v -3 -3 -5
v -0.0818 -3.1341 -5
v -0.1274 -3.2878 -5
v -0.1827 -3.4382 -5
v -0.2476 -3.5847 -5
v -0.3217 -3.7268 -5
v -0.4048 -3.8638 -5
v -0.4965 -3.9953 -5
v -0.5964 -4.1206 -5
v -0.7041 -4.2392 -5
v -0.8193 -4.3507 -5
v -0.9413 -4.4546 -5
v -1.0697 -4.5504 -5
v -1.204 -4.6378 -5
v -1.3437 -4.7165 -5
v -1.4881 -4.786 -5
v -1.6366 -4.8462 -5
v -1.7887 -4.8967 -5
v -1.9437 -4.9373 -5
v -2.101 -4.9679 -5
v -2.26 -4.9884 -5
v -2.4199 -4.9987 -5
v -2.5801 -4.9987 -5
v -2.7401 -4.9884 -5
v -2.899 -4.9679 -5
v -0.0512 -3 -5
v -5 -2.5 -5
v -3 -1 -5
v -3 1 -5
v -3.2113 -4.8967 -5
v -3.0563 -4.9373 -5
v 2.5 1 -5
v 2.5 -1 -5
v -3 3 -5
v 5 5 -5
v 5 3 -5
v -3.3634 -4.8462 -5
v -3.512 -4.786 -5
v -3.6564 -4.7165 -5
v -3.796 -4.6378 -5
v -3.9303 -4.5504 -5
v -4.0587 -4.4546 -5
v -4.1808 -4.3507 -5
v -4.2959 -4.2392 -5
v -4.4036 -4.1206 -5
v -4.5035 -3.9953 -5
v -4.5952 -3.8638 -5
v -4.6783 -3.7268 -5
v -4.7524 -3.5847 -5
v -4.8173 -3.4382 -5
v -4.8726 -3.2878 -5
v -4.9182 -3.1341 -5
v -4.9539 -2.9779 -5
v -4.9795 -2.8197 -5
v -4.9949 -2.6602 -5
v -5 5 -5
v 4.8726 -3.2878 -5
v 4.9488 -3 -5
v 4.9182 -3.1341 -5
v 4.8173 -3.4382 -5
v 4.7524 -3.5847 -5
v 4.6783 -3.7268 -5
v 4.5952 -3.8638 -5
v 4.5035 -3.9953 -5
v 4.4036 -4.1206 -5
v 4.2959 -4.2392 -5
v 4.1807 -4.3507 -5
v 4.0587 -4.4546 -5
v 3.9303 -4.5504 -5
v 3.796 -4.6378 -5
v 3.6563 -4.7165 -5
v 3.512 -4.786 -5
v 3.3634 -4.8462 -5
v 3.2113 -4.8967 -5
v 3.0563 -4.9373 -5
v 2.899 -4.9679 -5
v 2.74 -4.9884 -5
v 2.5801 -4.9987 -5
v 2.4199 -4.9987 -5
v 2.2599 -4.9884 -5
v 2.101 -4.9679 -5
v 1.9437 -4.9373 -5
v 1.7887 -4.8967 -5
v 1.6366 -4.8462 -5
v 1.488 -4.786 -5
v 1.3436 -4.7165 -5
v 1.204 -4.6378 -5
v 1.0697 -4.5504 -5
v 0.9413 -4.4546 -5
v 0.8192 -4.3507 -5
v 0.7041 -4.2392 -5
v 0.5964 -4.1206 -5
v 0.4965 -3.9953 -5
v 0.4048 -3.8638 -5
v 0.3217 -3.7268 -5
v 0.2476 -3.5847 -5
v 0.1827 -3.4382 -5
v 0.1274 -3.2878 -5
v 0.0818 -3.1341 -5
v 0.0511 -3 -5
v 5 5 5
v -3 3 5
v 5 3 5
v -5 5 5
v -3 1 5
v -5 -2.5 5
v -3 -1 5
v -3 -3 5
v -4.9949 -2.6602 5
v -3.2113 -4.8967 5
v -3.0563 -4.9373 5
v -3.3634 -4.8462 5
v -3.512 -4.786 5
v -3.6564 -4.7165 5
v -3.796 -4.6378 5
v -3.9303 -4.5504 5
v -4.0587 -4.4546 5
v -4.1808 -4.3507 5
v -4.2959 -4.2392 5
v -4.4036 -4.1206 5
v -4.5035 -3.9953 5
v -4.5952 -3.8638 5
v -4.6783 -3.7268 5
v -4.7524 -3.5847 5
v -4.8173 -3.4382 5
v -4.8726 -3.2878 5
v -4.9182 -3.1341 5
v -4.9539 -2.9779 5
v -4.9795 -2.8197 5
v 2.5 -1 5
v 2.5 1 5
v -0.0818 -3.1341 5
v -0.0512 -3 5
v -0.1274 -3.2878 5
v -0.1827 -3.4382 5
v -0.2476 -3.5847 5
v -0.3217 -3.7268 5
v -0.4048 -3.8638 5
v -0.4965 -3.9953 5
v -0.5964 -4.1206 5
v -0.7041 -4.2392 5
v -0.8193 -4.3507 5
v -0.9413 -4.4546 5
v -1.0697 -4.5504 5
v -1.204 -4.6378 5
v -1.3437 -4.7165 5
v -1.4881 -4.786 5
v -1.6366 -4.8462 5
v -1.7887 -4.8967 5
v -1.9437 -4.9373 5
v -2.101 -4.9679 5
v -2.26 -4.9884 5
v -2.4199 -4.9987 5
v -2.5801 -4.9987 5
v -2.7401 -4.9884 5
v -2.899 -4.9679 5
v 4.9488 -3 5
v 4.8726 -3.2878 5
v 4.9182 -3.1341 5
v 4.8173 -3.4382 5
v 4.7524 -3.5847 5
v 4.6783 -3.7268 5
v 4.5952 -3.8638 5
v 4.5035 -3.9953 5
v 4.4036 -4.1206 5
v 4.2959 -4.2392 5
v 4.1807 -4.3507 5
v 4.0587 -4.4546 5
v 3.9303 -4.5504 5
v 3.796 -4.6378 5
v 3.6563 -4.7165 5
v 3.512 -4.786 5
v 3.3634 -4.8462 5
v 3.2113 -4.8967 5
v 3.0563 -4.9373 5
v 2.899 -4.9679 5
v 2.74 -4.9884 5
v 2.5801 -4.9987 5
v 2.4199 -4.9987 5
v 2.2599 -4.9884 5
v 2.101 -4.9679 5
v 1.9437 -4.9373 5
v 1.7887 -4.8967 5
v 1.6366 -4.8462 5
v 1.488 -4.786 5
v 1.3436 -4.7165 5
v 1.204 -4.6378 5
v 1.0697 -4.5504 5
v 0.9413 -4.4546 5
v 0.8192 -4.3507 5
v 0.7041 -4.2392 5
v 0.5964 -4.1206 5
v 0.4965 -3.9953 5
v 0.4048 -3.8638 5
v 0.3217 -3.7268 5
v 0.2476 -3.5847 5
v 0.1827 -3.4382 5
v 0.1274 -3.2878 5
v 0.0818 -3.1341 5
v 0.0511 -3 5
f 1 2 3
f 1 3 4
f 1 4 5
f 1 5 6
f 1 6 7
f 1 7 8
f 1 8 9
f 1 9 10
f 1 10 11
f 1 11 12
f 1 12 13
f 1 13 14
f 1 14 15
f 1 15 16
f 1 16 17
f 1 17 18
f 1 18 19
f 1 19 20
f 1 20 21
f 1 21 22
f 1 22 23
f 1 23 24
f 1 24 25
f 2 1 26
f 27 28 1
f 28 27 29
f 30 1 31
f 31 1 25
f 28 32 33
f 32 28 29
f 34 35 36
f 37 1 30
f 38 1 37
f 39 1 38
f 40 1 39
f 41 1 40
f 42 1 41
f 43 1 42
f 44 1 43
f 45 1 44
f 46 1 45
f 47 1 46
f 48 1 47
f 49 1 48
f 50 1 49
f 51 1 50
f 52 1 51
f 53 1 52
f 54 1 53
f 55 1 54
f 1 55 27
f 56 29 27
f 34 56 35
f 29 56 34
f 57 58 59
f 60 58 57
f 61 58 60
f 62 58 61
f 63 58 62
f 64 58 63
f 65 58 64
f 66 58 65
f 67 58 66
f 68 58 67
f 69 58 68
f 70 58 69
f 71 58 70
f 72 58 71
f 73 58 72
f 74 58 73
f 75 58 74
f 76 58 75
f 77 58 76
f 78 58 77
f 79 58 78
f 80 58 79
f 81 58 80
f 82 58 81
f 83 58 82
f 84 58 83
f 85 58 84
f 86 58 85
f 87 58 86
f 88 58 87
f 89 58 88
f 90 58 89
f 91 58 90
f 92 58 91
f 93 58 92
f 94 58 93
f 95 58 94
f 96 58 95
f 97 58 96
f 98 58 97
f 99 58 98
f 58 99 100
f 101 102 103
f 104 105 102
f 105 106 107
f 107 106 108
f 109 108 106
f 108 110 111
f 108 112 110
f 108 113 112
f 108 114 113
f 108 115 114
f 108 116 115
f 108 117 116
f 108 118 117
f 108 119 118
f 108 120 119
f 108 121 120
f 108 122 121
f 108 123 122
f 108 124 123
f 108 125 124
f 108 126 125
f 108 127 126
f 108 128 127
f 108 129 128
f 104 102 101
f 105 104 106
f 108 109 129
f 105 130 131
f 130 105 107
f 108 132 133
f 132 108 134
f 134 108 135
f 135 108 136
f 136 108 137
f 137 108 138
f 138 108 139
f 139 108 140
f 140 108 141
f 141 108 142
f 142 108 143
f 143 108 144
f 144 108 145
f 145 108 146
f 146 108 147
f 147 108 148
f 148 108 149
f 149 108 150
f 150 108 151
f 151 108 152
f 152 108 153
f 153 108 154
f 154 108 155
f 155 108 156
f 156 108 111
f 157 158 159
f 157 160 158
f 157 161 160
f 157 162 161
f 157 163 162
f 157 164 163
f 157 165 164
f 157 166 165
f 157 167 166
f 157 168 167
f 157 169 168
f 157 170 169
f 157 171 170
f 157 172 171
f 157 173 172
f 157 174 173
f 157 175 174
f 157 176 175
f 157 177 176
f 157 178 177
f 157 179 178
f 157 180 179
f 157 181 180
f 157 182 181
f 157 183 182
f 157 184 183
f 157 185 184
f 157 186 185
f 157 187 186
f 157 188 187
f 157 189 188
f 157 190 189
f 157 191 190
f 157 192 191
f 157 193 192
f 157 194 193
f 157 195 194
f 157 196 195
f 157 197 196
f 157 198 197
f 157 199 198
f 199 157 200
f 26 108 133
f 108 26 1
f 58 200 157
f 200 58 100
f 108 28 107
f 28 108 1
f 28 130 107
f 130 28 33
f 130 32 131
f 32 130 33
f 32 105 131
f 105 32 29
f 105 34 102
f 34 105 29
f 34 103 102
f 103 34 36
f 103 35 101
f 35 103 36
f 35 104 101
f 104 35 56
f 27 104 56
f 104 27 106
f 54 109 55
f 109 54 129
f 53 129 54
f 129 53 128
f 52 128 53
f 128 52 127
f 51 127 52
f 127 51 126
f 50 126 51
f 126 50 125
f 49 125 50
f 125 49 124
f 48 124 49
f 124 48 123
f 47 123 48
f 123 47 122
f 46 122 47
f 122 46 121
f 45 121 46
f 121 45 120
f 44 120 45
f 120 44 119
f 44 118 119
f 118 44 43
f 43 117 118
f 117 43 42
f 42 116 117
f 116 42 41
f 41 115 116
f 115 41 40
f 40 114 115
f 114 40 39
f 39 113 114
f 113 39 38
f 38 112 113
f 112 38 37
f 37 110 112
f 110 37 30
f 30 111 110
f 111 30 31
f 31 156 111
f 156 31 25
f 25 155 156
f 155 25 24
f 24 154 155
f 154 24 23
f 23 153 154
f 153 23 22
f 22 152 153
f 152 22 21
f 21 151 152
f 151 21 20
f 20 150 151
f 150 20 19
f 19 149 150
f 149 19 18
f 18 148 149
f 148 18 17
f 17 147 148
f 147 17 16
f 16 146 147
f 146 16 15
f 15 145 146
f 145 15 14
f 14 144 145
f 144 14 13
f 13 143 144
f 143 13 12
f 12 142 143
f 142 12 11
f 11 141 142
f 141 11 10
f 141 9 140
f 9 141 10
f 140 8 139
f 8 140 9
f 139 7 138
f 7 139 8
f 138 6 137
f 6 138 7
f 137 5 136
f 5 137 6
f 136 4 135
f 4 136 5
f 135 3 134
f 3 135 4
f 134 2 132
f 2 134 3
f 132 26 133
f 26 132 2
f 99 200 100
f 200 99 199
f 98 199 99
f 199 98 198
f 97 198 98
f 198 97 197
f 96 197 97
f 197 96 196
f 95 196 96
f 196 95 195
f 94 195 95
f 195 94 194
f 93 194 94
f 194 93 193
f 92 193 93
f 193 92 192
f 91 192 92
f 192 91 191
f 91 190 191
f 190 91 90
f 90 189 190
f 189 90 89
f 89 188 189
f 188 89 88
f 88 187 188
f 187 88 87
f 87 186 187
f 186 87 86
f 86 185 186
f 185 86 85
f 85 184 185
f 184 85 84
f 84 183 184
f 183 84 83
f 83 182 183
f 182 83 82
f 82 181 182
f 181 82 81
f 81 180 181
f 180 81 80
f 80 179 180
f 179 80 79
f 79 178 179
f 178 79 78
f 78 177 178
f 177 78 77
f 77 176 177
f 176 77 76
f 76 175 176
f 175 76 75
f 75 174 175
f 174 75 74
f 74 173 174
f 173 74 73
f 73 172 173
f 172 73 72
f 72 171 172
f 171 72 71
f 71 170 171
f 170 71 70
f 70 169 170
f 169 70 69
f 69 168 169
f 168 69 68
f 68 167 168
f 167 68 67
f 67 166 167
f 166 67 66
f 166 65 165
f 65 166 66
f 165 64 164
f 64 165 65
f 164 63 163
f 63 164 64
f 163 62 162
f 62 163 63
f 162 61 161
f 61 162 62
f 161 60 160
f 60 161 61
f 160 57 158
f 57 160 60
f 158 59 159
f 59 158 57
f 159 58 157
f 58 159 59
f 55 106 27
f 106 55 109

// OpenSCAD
// Generated by SolidPython 1.1.3 on 2025-02-20 04:04:08
$fn=50;


intersection() {
	translate(v = [-5.0000000000, -5.0000000000, -5.0000000000]) {
		linear_extrude(height = 10) {
			polygon(points = [[0, 0], [10, 0], [10, 2.0000000000], [2.0000000000, 2.0000000000], [2.0000000000, 4.0000000000], [7.5000000000, 4.0000000000], [7.5000000000, 6.0000000000], [2.0000000000, 6.0000000000], [2.0000000000, 8.0000000000], [10, 8.0000000000], [10, 10], [0, 10]]);
		}
	}
	rotate(a = -90, v = [0, 0, 1]) {
		translate(v = [-5.0000000000, -5.0000000000, -5.0000000000]) {
			linear_extrude(height = 10) {
				polygon(points = [[7.5000000000, 10.0000000000], [7.6601755500, 9.9948634819], [7.8196929042, 9.9794750346], [7.9778965718, 9.9538978925], [8.1341364598, 9.9182371576], [8.2877705451, 9.8726393675], [8.4381675122, 9.8172918934], [8.5847093478, 9.7524221698], [8.7267938800, 9.6782967603], [8.8638372530, 9.5952202622], [8.9952763262, 9.5035340547], [9.1205709883, 9.4036148959], [9.2392063765, 9.2958733752], [9.3506949927, 9.1807522257], [9.4545787062, 9.0587245046], [9.5504306365, 8.9302916503], [9.6378569075, 8.7959814208], [9.7164982659, 8.6563457256], [9.7860315575, 8.5119583578], [9.8461710551, 8.3634126361], [9.8966696326, 8.2113189666], [9.9373197805, 8.0563023349], [9.9679544585, 7.8989997376], [9.9884477824, 7.7400575648], [9.9987155405, 7.5801289439], [9.9987155405, 7.4198710561], [9.9884477824, 7.2599424352], [9.9679544585, 7.1010002624], [9.9373197805, 6.9436976651], [9.8966696326, 6.7886810334], [9.8461710551, 6.6365873639], [9.7860315575, 6.4880416422], [9.7164982659, 6.3436542744], [9.6378569075, 6.2040185792], [9.5504306365, 6.0697083497], [9.4545787062, 5.9412754954], [9.3506949927, 5.8192477743], [9.2392063765, 5.7041266248], [9.1205709883, 5.5963851041], [8.9952763262, 5.4964659453], [8.8638372530, 5.4047797378], [8.7267938800, 5.3217032397], [8.5847093478, 5.2475778302], [8.4381675122, 5.1827081066], [8.2877705451, 5.1273606325], [8.1341364598, 5.0817628424], [7.9778965718, 5.0461021075], [7.8196929042, 5.0205249654], [7.6601755500, 5.0051365181], [7.5000000000, 5.0000000000], [7.5000000000, 5.0000000000], [7.6601755500, 4.9948634819], [7.8196929042, 4.9794750346], [7.9778965718, 4.9538978925], [8.1341364598, 4.9182371576], [8.2877705451, 4.8726393675], [8.4381675122, 4.8172918934], [8.5847093478, 4.7524221698], [8.7267938800, 4.6782967603], [8.8638372530, 4.5952202622], [8.9952763262, 4.5035340547], [9.1205709883, 4.4036148959], [9.2392063765, 4.2958733752], [9.3506949927, 4.1807522257], [9.4545787062, 4.0587245046], [9.5504306365, 3.9302916503], [9.6378569075, 3.7959814208], [9.7164982659, 3.6563457256], [9.7860315575, 3.5119583578], [9.8461710551, 3.3634126361], [9.8966696326, 3.2113189666], [9.9373197805, 3.0563023349], [9.9679544585, 2.8989997376], [9.9884477824, 2.7400575648], [9.9987155405, 2.5801289439], [9.9987155405, 2.4198710561], [9.9884477824, 2.2599424352], [9.9679544585, 2.1010002624], [9.9373197805, 1.9436976651], [9.8966696326, 1.7886810334], [9.8461710551, 1.6365873639], [9.7860315575, 1.4880416422], [9.7164982659, 1.3436542744], [9.6378569075, 1.2040185792], [9.5504306365, 1.0697083497], [9.4545787062, 0.9412754954], [9.3506949927, 0.8192477743], [9.2392063765, 0.7041266248], [9.1205709883, 0.5963851041], [8.9952763262, 0.4964659453], [8.8638372530, 0.4047797378], [8.7267938800, 0.3217032397], [8.5847093478, 0.2475778302], [8.4381675122, 0.1827081066], [8.2877705451, 0.1273606325], [8.1341364598, 0.0817628424], [7.9778965718, 0.0461021075], [7.8196929042, 0.0205249654], [7.6601755500, 0.0051365181], [7.5000000000, 0.0000000000], [0, 0], [0, 10]]);
			}
		}
	}
}
/***********************************************
*********      SolidPython code:      **********
************************************************
 
from solid import *
from solid.utils import *

import math
import matplotlib.pyplot as plt
import subprocess
import os

class Hole:
    def __init__(self, x, y, radius):
        """
        Hole defined by:
        :param x: x dimension for center point of the circle as a ratio of letter height
        :param y: y dimension for center point of the circle as a ratio of letter height
        :param radius: radius of circle as a ratio of letter height
        """
        self.x = x
        self.y = y
        self.radius = radius

class Letter3D:
    def __init__(self, name, outer_shape_points, height, holes=None):
        """
        3D Letter defined by:
        :param name: name of letter
        :param outer_shape_points: points defining the outer shape of the letter
        :param heigh: size of cube that letter fits inside
        :param holes: list of Holes
        """
        self.name = name
        self.outer_shape_points = outer_shape_points
        self.holes = holes if holes is None else []
        self.height = height


    def generate(self):
        shape = polygon(points=self.outer_shape_points)

        if self.holes:
            for hole in self.holes:
                circle_hole = circle(r=hole.radius*self.height)
                positioned_hole = translate([hole.x*self.height, hole.y*self.height])(circle_hole)
                shape = difference()(shape, positioned_hole)
        
        shape_3d = linear_extrude(height=self.height)(shape)
        shape_3d = translate([-self.height/2, -self.height/2, -self.height/2])(shape_3d)
        return shape_3d
    
    def render(self):
        scad_render_to_file(self.shape, f"output/{self.name}.scad", file_header='$fn=50;')
        subprocess.run(["C:\\Program Files\\OpenSCAD\\openscad.exe", "-o", f"output\\{self.name}.stl", f"output\\{self.name}.scad"])


class TwoLetter3D:
    def __init__(self, height, letterA, letterA_face, letterB=None, letterB_face=None):
        self.height = height
        self.letterA = letterA
        self.letterB = letterB
        self.letterA_face = letterA_face
        self.letterB_face = letterB_face

    def call_letter_generation(self, letter):
        letter = letter.upper()
        function_name = f"letter_{letter}"
        func = globals().get(function_name)
        if func is None:
            raise ValueError(f"No letter generation function defined for letter '{letter}'.")
        else:
            print(func)
        return func(self.height)
    
    def rotate_object(self, face, shape):
        face = face.lower()
        if face == "z":
            return shape
        if face == "x":
            return rotate(a=90, v=[0,1,0])(shape)
        if face == "y":
            return rotate(a=-90, v=[0,0,1])(shape)
        else:
            raise ValueError("Face must be one of 'x', 'y', or 'z'.")

    def render(self):
        if self.letterA:
            letterA3D = self.call_letter_generation(self.letterA)
            letterA3D = self.rotate_object(self.letterA_face, letterA3D)

        if self.letterB:
            letterB3D = self.call_letter_generation(self.letterB)
            letterB3D = self.rotate_object(self.letterB_face, letterB3D)
            combined = intersection()(letterA3D, letterB3D)
            file_name = self.letterA + self.letterB
            scad_render_to_file(combined, f"output/{file_name}.scad", file_header='$fn=50;')
            subprocess.run(["C:\\Program Files\\OpenSCAD\\openscad.exe", "-o", f"output\\{file_name}.stl", f"output\\{file_name}.scad"])
            return
        else:
            file_name = self.letterA
            scad_render_to_file(letterA3D, f"output/{file_name}.scad", file_header='$fn=50;')
            subprocess.run(["C:\\Program Files\\OpenSCAD\\openscad.exe", "-o", f"output\\{file_name}.stl", f"output\\{file_name}.scad"])
    
                

def arc_points(radius, start_angle, end_angle, center=[0,0], num_points=50):
    angles = [start_angle + i * (end_angle - start_angle) / (num_points - 1)
              for i in range(num_points)]
    points = [
        (center[0] + radius * math.cos(math.radians(angle)),
         center[1] + radius * math.sin(math.radians(angle)))
        for angle in angles
    ]
    return points

def letter_A(h):
    shape_points = [(0,0), (h/2, h), (h, 0), (5/6*h, 0), (2/3*h, 1/3*h), (1/3*h, 1/3*h), (h/6, 0)]
    holes = [Hole(1/2, 7/12, 1/6)]
    A = Letter3D("A", shape_points, h, holes)
    return A.generate()

def letter_B(h):
    top_arc_points = arc_points(h/4, 90, -90, center=[3/4*h, 3/4*h])
    bottom_arc_points = arc_points(h/4, 90, -90, center=[3/4*h, h/4])
    other_points = [(0,0),(0,h)]

    shape_points = top_arc_points + bottom_arc_points + other_points
    holes = [Hole(1/2, 3/4, 1/6), Hole(1/2, 1/4, 1/6)]
    B = Letter3D("B", shape_points, h, holes)
    return B.generate()

def letter_C(h):
    outer_arc_points = arc_points(h/2, 30, 330, center=[h/2,h/2])
    inner_arc_points = arc_points(h/4, 30, 330, center=[h/2,h/2])[::-1]
    shape_points = outer_arc_points + inner_arc_points
    # print(shape_points)
    C = Letter3D("C", shape_points, h)
    return C.generate()


def letter_D(h):
    outer_arc_points = arc_points(h/2, 90, -90, center= [h/2, h/2])
    shape_points = outer_arc_points + [(0,0), (0, h)]
    holes = [Hole(1/2, 1/2, 1/6)]
    D = Letter3D("D", shape_points, h, holes)
    return D.generate()

def letter_E(h):
    points = [(0,0), (h,0), (h,h/5), (h/5,h/5), (h/5,2/5*h), (3/4*h,2/5*h), (3/4*h,3/5*h), (h/5,3/5*h), (h/5,4/5*h), (h,4/5*h), (h,h), (0,h)]
    E = Letter3D("E", points, h)
    return E.generate()

def letter_F(h):
    points = [(0,0), (h/5,0), (h/5,2/5*h), (3/4*h,2/5*h), (3/4*h,3/5*h), (h/5,3/5*h), (h/5,4/5*h), (h,4/5*h), (h,h), (0,h)]
    F = Letter3D("F", points, h)
    return F.generate()

if __name__ == "__main__":
    os.makedirs("output", exist_ok=True)
    
    letters = [chr(x) for x in range(ord('A'), ord('F') + 1)]
    for letter in letters:
        for other_letter in letters:
            shape = TwoLetter3D(10, letter, "z", other_letter, "y")
            shape.render()
 
 
************************************************/
